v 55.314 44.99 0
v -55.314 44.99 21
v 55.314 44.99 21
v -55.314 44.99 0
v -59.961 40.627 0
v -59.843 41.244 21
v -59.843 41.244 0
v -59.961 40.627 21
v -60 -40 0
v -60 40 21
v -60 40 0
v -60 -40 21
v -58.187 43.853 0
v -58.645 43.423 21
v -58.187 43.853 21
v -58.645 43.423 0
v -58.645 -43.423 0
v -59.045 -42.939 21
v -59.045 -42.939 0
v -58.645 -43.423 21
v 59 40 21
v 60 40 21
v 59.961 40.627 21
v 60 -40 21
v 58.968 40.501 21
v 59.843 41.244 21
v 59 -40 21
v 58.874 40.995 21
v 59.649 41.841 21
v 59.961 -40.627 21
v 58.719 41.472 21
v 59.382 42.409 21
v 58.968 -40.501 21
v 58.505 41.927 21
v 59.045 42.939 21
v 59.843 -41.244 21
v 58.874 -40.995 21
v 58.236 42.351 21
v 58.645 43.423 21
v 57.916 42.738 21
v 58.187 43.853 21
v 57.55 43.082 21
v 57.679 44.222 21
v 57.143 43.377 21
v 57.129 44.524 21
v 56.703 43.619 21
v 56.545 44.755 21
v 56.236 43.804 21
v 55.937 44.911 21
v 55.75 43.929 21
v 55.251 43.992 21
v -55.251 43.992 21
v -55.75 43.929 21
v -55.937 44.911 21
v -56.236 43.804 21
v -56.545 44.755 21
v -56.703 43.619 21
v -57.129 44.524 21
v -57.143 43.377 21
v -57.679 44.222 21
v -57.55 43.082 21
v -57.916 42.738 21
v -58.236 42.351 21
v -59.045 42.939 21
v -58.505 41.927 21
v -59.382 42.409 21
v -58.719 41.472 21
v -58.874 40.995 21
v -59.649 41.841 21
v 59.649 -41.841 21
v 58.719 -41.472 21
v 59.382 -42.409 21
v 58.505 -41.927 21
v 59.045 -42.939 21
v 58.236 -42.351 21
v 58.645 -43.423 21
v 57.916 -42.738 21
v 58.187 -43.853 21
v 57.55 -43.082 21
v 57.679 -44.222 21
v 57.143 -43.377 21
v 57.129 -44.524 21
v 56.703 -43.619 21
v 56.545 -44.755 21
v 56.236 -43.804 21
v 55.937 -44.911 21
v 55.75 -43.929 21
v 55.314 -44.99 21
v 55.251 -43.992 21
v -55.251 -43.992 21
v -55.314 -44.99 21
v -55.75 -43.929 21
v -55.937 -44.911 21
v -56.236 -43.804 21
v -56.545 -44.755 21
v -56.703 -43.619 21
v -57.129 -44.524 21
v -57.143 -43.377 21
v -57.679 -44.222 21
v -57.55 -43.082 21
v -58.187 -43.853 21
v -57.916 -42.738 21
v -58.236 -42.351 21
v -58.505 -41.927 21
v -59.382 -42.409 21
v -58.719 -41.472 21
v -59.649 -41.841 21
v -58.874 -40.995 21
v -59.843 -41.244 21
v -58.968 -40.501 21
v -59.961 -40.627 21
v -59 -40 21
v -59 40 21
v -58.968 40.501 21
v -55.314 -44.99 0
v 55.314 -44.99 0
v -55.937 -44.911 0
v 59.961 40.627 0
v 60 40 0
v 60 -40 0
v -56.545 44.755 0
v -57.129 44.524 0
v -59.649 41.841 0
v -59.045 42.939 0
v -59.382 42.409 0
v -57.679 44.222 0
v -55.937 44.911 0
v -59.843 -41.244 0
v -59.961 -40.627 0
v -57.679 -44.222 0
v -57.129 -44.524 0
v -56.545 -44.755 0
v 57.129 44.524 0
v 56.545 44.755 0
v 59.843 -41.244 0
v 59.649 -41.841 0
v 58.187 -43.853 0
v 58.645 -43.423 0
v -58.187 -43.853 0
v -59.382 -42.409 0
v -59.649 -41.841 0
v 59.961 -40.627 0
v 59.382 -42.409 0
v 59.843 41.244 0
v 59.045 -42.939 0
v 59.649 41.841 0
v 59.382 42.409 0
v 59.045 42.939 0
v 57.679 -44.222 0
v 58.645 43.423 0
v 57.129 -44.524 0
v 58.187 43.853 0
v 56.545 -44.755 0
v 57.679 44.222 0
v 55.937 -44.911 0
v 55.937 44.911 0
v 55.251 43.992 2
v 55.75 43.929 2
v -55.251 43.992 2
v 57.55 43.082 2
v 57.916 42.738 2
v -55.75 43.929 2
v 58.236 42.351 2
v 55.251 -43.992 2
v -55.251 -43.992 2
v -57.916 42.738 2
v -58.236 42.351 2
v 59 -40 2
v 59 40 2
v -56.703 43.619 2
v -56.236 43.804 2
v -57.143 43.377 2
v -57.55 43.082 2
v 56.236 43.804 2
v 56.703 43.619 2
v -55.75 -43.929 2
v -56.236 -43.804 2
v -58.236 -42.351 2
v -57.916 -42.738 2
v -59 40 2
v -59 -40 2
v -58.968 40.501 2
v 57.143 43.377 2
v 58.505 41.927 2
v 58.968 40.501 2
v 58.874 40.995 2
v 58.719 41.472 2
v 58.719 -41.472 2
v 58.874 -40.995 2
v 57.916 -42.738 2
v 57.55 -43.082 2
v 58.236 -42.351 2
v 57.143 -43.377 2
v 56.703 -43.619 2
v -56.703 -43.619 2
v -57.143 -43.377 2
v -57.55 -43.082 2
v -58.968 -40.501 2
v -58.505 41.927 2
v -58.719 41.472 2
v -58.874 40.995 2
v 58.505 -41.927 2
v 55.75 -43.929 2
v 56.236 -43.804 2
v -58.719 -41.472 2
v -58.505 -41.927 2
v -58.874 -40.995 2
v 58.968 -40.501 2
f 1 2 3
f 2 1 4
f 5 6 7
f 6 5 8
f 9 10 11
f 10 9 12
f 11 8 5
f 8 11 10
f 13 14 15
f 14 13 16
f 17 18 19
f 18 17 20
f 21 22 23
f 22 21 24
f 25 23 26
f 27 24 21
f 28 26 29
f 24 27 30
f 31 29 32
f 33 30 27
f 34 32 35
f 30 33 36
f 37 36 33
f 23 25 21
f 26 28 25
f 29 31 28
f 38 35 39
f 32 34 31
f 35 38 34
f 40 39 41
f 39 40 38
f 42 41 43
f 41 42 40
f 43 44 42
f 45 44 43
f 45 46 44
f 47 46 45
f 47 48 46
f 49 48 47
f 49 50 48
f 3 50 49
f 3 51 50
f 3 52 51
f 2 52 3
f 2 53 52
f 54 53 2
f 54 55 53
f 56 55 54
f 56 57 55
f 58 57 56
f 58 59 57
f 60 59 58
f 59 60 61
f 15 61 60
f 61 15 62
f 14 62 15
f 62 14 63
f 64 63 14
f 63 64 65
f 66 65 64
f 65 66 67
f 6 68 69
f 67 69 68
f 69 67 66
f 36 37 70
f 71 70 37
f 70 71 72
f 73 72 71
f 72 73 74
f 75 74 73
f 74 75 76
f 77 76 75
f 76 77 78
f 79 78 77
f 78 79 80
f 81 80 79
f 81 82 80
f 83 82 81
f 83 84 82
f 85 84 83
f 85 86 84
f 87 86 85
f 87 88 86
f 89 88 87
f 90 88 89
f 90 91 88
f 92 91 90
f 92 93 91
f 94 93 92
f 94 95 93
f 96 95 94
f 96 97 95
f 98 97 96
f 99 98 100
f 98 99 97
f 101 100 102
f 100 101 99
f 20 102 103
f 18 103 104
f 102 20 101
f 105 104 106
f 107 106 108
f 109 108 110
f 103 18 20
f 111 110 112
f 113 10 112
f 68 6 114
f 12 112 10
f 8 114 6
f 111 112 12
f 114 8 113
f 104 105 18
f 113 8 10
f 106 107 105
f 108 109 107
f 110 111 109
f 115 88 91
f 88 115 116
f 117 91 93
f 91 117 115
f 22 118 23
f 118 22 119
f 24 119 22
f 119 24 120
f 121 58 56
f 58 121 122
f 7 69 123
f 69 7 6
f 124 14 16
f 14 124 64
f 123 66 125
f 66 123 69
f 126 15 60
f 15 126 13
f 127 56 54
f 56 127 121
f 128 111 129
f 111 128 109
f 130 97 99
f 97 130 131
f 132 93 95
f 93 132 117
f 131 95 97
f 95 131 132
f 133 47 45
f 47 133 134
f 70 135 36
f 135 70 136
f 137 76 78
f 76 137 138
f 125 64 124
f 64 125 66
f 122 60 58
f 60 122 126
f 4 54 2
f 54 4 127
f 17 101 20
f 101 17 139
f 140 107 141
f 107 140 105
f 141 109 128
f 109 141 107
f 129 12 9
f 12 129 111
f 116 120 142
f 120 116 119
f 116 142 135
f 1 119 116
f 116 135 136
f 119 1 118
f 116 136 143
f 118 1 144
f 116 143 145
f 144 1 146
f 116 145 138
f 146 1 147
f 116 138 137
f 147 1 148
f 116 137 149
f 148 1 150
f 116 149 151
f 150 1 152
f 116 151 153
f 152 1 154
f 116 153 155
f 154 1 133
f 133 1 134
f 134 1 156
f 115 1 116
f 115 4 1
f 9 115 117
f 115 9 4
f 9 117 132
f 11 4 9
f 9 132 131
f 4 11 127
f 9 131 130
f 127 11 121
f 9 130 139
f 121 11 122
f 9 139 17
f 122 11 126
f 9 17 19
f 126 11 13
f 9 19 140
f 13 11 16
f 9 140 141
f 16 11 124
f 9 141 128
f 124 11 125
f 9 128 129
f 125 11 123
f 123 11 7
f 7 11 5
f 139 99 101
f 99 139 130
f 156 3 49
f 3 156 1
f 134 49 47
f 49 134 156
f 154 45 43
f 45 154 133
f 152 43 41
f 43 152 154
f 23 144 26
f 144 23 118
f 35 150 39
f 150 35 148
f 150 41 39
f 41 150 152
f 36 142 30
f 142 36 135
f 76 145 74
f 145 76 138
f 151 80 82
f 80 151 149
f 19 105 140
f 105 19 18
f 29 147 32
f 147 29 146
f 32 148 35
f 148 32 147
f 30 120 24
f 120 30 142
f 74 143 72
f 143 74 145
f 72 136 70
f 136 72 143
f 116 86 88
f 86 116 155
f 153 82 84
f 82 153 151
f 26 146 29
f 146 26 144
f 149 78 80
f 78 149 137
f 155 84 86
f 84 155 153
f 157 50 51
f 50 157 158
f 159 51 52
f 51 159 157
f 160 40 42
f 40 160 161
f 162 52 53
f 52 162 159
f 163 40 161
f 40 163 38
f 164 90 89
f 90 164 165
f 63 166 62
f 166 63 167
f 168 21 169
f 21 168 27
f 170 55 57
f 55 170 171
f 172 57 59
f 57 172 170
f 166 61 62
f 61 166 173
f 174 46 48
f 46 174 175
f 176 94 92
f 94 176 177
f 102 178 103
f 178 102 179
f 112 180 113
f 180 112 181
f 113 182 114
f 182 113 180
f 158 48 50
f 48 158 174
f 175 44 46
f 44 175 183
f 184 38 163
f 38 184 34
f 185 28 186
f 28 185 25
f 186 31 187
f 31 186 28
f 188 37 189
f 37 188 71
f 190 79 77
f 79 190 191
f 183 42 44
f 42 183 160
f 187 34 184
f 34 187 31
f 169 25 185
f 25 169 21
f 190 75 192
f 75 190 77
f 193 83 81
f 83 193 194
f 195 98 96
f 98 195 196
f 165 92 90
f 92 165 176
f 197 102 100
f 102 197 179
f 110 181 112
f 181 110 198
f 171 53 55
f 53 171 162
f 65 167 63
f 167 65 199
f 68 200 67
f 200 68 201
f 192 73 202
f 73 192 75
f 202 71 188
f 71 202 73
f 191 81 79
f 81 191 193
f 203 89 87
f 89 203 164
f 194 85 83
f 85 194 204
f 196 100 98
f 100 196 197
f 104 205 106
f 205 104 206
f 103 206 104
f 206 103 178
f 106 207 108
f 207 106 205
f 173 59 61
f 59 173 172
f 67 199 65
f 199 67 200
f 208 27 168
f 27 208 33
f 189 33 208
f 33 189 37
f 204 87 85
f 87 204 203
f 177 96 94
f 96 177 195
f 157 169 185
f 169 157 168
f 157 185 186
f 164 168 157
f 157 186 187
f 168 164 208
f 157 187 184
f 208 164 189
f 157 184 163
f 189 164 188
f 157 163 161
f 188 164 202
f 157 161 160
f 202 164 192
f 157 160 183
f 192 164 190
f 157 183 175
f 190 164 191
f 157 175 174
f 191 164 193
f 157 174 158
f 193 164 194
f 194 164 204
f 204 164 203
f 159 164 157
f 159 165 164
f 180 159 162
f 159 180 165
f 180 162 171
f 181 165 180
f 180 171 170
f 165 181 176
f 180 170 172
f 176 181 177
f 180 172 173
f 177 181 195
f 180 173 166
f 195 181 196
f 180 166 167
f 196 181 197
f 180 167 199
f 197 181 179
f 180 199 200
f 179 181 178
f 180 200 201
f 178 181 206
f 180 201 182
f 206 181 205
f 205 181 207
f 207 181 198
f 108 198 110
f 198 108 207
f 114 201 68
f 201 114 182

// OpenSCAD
$fn = 50;


difference() {
	union() {
		hull() {
			translate(v = [-55.0000000000, 40.0000000000, 0]) {
				cylinder(h = 21, r = 5);
			}
			translate(v = [55.0000000000, 40.0000000000, 0]) {
				cylinder(h = 21, r = 5);
			}
			translate(v = [-55.0000000000, -40.0000000000, 0]) {
				cylinder(h = 21, r = 5);
			}
			translate(v = [55.0000000000, -40.0000000000, 0]) {
				cylinder(h = 21, r = 5);
			}
		}
	}
	union() {
		translate(v = [0, 0, 2]) {
			hull() {
				translate(v = [-55.0000000000, 40.0000000000, 0]) {
					cylinder(h = 19, r = 4);
				}
				translate(v = [55.0000000000, 40.0000000000, 0]) {
					cylinder(h = 19, r = 4);
				}
				translate(v = [-55.0000000000, -40.0000000000, 0]) {
					cylinder(h = 19, r = 4);
				}
				translate(v = [55.0000000000, -40.0000000000, 0]) {
					cylinder(h = 19, r = 4);
				}
			}
		}
	}
}
